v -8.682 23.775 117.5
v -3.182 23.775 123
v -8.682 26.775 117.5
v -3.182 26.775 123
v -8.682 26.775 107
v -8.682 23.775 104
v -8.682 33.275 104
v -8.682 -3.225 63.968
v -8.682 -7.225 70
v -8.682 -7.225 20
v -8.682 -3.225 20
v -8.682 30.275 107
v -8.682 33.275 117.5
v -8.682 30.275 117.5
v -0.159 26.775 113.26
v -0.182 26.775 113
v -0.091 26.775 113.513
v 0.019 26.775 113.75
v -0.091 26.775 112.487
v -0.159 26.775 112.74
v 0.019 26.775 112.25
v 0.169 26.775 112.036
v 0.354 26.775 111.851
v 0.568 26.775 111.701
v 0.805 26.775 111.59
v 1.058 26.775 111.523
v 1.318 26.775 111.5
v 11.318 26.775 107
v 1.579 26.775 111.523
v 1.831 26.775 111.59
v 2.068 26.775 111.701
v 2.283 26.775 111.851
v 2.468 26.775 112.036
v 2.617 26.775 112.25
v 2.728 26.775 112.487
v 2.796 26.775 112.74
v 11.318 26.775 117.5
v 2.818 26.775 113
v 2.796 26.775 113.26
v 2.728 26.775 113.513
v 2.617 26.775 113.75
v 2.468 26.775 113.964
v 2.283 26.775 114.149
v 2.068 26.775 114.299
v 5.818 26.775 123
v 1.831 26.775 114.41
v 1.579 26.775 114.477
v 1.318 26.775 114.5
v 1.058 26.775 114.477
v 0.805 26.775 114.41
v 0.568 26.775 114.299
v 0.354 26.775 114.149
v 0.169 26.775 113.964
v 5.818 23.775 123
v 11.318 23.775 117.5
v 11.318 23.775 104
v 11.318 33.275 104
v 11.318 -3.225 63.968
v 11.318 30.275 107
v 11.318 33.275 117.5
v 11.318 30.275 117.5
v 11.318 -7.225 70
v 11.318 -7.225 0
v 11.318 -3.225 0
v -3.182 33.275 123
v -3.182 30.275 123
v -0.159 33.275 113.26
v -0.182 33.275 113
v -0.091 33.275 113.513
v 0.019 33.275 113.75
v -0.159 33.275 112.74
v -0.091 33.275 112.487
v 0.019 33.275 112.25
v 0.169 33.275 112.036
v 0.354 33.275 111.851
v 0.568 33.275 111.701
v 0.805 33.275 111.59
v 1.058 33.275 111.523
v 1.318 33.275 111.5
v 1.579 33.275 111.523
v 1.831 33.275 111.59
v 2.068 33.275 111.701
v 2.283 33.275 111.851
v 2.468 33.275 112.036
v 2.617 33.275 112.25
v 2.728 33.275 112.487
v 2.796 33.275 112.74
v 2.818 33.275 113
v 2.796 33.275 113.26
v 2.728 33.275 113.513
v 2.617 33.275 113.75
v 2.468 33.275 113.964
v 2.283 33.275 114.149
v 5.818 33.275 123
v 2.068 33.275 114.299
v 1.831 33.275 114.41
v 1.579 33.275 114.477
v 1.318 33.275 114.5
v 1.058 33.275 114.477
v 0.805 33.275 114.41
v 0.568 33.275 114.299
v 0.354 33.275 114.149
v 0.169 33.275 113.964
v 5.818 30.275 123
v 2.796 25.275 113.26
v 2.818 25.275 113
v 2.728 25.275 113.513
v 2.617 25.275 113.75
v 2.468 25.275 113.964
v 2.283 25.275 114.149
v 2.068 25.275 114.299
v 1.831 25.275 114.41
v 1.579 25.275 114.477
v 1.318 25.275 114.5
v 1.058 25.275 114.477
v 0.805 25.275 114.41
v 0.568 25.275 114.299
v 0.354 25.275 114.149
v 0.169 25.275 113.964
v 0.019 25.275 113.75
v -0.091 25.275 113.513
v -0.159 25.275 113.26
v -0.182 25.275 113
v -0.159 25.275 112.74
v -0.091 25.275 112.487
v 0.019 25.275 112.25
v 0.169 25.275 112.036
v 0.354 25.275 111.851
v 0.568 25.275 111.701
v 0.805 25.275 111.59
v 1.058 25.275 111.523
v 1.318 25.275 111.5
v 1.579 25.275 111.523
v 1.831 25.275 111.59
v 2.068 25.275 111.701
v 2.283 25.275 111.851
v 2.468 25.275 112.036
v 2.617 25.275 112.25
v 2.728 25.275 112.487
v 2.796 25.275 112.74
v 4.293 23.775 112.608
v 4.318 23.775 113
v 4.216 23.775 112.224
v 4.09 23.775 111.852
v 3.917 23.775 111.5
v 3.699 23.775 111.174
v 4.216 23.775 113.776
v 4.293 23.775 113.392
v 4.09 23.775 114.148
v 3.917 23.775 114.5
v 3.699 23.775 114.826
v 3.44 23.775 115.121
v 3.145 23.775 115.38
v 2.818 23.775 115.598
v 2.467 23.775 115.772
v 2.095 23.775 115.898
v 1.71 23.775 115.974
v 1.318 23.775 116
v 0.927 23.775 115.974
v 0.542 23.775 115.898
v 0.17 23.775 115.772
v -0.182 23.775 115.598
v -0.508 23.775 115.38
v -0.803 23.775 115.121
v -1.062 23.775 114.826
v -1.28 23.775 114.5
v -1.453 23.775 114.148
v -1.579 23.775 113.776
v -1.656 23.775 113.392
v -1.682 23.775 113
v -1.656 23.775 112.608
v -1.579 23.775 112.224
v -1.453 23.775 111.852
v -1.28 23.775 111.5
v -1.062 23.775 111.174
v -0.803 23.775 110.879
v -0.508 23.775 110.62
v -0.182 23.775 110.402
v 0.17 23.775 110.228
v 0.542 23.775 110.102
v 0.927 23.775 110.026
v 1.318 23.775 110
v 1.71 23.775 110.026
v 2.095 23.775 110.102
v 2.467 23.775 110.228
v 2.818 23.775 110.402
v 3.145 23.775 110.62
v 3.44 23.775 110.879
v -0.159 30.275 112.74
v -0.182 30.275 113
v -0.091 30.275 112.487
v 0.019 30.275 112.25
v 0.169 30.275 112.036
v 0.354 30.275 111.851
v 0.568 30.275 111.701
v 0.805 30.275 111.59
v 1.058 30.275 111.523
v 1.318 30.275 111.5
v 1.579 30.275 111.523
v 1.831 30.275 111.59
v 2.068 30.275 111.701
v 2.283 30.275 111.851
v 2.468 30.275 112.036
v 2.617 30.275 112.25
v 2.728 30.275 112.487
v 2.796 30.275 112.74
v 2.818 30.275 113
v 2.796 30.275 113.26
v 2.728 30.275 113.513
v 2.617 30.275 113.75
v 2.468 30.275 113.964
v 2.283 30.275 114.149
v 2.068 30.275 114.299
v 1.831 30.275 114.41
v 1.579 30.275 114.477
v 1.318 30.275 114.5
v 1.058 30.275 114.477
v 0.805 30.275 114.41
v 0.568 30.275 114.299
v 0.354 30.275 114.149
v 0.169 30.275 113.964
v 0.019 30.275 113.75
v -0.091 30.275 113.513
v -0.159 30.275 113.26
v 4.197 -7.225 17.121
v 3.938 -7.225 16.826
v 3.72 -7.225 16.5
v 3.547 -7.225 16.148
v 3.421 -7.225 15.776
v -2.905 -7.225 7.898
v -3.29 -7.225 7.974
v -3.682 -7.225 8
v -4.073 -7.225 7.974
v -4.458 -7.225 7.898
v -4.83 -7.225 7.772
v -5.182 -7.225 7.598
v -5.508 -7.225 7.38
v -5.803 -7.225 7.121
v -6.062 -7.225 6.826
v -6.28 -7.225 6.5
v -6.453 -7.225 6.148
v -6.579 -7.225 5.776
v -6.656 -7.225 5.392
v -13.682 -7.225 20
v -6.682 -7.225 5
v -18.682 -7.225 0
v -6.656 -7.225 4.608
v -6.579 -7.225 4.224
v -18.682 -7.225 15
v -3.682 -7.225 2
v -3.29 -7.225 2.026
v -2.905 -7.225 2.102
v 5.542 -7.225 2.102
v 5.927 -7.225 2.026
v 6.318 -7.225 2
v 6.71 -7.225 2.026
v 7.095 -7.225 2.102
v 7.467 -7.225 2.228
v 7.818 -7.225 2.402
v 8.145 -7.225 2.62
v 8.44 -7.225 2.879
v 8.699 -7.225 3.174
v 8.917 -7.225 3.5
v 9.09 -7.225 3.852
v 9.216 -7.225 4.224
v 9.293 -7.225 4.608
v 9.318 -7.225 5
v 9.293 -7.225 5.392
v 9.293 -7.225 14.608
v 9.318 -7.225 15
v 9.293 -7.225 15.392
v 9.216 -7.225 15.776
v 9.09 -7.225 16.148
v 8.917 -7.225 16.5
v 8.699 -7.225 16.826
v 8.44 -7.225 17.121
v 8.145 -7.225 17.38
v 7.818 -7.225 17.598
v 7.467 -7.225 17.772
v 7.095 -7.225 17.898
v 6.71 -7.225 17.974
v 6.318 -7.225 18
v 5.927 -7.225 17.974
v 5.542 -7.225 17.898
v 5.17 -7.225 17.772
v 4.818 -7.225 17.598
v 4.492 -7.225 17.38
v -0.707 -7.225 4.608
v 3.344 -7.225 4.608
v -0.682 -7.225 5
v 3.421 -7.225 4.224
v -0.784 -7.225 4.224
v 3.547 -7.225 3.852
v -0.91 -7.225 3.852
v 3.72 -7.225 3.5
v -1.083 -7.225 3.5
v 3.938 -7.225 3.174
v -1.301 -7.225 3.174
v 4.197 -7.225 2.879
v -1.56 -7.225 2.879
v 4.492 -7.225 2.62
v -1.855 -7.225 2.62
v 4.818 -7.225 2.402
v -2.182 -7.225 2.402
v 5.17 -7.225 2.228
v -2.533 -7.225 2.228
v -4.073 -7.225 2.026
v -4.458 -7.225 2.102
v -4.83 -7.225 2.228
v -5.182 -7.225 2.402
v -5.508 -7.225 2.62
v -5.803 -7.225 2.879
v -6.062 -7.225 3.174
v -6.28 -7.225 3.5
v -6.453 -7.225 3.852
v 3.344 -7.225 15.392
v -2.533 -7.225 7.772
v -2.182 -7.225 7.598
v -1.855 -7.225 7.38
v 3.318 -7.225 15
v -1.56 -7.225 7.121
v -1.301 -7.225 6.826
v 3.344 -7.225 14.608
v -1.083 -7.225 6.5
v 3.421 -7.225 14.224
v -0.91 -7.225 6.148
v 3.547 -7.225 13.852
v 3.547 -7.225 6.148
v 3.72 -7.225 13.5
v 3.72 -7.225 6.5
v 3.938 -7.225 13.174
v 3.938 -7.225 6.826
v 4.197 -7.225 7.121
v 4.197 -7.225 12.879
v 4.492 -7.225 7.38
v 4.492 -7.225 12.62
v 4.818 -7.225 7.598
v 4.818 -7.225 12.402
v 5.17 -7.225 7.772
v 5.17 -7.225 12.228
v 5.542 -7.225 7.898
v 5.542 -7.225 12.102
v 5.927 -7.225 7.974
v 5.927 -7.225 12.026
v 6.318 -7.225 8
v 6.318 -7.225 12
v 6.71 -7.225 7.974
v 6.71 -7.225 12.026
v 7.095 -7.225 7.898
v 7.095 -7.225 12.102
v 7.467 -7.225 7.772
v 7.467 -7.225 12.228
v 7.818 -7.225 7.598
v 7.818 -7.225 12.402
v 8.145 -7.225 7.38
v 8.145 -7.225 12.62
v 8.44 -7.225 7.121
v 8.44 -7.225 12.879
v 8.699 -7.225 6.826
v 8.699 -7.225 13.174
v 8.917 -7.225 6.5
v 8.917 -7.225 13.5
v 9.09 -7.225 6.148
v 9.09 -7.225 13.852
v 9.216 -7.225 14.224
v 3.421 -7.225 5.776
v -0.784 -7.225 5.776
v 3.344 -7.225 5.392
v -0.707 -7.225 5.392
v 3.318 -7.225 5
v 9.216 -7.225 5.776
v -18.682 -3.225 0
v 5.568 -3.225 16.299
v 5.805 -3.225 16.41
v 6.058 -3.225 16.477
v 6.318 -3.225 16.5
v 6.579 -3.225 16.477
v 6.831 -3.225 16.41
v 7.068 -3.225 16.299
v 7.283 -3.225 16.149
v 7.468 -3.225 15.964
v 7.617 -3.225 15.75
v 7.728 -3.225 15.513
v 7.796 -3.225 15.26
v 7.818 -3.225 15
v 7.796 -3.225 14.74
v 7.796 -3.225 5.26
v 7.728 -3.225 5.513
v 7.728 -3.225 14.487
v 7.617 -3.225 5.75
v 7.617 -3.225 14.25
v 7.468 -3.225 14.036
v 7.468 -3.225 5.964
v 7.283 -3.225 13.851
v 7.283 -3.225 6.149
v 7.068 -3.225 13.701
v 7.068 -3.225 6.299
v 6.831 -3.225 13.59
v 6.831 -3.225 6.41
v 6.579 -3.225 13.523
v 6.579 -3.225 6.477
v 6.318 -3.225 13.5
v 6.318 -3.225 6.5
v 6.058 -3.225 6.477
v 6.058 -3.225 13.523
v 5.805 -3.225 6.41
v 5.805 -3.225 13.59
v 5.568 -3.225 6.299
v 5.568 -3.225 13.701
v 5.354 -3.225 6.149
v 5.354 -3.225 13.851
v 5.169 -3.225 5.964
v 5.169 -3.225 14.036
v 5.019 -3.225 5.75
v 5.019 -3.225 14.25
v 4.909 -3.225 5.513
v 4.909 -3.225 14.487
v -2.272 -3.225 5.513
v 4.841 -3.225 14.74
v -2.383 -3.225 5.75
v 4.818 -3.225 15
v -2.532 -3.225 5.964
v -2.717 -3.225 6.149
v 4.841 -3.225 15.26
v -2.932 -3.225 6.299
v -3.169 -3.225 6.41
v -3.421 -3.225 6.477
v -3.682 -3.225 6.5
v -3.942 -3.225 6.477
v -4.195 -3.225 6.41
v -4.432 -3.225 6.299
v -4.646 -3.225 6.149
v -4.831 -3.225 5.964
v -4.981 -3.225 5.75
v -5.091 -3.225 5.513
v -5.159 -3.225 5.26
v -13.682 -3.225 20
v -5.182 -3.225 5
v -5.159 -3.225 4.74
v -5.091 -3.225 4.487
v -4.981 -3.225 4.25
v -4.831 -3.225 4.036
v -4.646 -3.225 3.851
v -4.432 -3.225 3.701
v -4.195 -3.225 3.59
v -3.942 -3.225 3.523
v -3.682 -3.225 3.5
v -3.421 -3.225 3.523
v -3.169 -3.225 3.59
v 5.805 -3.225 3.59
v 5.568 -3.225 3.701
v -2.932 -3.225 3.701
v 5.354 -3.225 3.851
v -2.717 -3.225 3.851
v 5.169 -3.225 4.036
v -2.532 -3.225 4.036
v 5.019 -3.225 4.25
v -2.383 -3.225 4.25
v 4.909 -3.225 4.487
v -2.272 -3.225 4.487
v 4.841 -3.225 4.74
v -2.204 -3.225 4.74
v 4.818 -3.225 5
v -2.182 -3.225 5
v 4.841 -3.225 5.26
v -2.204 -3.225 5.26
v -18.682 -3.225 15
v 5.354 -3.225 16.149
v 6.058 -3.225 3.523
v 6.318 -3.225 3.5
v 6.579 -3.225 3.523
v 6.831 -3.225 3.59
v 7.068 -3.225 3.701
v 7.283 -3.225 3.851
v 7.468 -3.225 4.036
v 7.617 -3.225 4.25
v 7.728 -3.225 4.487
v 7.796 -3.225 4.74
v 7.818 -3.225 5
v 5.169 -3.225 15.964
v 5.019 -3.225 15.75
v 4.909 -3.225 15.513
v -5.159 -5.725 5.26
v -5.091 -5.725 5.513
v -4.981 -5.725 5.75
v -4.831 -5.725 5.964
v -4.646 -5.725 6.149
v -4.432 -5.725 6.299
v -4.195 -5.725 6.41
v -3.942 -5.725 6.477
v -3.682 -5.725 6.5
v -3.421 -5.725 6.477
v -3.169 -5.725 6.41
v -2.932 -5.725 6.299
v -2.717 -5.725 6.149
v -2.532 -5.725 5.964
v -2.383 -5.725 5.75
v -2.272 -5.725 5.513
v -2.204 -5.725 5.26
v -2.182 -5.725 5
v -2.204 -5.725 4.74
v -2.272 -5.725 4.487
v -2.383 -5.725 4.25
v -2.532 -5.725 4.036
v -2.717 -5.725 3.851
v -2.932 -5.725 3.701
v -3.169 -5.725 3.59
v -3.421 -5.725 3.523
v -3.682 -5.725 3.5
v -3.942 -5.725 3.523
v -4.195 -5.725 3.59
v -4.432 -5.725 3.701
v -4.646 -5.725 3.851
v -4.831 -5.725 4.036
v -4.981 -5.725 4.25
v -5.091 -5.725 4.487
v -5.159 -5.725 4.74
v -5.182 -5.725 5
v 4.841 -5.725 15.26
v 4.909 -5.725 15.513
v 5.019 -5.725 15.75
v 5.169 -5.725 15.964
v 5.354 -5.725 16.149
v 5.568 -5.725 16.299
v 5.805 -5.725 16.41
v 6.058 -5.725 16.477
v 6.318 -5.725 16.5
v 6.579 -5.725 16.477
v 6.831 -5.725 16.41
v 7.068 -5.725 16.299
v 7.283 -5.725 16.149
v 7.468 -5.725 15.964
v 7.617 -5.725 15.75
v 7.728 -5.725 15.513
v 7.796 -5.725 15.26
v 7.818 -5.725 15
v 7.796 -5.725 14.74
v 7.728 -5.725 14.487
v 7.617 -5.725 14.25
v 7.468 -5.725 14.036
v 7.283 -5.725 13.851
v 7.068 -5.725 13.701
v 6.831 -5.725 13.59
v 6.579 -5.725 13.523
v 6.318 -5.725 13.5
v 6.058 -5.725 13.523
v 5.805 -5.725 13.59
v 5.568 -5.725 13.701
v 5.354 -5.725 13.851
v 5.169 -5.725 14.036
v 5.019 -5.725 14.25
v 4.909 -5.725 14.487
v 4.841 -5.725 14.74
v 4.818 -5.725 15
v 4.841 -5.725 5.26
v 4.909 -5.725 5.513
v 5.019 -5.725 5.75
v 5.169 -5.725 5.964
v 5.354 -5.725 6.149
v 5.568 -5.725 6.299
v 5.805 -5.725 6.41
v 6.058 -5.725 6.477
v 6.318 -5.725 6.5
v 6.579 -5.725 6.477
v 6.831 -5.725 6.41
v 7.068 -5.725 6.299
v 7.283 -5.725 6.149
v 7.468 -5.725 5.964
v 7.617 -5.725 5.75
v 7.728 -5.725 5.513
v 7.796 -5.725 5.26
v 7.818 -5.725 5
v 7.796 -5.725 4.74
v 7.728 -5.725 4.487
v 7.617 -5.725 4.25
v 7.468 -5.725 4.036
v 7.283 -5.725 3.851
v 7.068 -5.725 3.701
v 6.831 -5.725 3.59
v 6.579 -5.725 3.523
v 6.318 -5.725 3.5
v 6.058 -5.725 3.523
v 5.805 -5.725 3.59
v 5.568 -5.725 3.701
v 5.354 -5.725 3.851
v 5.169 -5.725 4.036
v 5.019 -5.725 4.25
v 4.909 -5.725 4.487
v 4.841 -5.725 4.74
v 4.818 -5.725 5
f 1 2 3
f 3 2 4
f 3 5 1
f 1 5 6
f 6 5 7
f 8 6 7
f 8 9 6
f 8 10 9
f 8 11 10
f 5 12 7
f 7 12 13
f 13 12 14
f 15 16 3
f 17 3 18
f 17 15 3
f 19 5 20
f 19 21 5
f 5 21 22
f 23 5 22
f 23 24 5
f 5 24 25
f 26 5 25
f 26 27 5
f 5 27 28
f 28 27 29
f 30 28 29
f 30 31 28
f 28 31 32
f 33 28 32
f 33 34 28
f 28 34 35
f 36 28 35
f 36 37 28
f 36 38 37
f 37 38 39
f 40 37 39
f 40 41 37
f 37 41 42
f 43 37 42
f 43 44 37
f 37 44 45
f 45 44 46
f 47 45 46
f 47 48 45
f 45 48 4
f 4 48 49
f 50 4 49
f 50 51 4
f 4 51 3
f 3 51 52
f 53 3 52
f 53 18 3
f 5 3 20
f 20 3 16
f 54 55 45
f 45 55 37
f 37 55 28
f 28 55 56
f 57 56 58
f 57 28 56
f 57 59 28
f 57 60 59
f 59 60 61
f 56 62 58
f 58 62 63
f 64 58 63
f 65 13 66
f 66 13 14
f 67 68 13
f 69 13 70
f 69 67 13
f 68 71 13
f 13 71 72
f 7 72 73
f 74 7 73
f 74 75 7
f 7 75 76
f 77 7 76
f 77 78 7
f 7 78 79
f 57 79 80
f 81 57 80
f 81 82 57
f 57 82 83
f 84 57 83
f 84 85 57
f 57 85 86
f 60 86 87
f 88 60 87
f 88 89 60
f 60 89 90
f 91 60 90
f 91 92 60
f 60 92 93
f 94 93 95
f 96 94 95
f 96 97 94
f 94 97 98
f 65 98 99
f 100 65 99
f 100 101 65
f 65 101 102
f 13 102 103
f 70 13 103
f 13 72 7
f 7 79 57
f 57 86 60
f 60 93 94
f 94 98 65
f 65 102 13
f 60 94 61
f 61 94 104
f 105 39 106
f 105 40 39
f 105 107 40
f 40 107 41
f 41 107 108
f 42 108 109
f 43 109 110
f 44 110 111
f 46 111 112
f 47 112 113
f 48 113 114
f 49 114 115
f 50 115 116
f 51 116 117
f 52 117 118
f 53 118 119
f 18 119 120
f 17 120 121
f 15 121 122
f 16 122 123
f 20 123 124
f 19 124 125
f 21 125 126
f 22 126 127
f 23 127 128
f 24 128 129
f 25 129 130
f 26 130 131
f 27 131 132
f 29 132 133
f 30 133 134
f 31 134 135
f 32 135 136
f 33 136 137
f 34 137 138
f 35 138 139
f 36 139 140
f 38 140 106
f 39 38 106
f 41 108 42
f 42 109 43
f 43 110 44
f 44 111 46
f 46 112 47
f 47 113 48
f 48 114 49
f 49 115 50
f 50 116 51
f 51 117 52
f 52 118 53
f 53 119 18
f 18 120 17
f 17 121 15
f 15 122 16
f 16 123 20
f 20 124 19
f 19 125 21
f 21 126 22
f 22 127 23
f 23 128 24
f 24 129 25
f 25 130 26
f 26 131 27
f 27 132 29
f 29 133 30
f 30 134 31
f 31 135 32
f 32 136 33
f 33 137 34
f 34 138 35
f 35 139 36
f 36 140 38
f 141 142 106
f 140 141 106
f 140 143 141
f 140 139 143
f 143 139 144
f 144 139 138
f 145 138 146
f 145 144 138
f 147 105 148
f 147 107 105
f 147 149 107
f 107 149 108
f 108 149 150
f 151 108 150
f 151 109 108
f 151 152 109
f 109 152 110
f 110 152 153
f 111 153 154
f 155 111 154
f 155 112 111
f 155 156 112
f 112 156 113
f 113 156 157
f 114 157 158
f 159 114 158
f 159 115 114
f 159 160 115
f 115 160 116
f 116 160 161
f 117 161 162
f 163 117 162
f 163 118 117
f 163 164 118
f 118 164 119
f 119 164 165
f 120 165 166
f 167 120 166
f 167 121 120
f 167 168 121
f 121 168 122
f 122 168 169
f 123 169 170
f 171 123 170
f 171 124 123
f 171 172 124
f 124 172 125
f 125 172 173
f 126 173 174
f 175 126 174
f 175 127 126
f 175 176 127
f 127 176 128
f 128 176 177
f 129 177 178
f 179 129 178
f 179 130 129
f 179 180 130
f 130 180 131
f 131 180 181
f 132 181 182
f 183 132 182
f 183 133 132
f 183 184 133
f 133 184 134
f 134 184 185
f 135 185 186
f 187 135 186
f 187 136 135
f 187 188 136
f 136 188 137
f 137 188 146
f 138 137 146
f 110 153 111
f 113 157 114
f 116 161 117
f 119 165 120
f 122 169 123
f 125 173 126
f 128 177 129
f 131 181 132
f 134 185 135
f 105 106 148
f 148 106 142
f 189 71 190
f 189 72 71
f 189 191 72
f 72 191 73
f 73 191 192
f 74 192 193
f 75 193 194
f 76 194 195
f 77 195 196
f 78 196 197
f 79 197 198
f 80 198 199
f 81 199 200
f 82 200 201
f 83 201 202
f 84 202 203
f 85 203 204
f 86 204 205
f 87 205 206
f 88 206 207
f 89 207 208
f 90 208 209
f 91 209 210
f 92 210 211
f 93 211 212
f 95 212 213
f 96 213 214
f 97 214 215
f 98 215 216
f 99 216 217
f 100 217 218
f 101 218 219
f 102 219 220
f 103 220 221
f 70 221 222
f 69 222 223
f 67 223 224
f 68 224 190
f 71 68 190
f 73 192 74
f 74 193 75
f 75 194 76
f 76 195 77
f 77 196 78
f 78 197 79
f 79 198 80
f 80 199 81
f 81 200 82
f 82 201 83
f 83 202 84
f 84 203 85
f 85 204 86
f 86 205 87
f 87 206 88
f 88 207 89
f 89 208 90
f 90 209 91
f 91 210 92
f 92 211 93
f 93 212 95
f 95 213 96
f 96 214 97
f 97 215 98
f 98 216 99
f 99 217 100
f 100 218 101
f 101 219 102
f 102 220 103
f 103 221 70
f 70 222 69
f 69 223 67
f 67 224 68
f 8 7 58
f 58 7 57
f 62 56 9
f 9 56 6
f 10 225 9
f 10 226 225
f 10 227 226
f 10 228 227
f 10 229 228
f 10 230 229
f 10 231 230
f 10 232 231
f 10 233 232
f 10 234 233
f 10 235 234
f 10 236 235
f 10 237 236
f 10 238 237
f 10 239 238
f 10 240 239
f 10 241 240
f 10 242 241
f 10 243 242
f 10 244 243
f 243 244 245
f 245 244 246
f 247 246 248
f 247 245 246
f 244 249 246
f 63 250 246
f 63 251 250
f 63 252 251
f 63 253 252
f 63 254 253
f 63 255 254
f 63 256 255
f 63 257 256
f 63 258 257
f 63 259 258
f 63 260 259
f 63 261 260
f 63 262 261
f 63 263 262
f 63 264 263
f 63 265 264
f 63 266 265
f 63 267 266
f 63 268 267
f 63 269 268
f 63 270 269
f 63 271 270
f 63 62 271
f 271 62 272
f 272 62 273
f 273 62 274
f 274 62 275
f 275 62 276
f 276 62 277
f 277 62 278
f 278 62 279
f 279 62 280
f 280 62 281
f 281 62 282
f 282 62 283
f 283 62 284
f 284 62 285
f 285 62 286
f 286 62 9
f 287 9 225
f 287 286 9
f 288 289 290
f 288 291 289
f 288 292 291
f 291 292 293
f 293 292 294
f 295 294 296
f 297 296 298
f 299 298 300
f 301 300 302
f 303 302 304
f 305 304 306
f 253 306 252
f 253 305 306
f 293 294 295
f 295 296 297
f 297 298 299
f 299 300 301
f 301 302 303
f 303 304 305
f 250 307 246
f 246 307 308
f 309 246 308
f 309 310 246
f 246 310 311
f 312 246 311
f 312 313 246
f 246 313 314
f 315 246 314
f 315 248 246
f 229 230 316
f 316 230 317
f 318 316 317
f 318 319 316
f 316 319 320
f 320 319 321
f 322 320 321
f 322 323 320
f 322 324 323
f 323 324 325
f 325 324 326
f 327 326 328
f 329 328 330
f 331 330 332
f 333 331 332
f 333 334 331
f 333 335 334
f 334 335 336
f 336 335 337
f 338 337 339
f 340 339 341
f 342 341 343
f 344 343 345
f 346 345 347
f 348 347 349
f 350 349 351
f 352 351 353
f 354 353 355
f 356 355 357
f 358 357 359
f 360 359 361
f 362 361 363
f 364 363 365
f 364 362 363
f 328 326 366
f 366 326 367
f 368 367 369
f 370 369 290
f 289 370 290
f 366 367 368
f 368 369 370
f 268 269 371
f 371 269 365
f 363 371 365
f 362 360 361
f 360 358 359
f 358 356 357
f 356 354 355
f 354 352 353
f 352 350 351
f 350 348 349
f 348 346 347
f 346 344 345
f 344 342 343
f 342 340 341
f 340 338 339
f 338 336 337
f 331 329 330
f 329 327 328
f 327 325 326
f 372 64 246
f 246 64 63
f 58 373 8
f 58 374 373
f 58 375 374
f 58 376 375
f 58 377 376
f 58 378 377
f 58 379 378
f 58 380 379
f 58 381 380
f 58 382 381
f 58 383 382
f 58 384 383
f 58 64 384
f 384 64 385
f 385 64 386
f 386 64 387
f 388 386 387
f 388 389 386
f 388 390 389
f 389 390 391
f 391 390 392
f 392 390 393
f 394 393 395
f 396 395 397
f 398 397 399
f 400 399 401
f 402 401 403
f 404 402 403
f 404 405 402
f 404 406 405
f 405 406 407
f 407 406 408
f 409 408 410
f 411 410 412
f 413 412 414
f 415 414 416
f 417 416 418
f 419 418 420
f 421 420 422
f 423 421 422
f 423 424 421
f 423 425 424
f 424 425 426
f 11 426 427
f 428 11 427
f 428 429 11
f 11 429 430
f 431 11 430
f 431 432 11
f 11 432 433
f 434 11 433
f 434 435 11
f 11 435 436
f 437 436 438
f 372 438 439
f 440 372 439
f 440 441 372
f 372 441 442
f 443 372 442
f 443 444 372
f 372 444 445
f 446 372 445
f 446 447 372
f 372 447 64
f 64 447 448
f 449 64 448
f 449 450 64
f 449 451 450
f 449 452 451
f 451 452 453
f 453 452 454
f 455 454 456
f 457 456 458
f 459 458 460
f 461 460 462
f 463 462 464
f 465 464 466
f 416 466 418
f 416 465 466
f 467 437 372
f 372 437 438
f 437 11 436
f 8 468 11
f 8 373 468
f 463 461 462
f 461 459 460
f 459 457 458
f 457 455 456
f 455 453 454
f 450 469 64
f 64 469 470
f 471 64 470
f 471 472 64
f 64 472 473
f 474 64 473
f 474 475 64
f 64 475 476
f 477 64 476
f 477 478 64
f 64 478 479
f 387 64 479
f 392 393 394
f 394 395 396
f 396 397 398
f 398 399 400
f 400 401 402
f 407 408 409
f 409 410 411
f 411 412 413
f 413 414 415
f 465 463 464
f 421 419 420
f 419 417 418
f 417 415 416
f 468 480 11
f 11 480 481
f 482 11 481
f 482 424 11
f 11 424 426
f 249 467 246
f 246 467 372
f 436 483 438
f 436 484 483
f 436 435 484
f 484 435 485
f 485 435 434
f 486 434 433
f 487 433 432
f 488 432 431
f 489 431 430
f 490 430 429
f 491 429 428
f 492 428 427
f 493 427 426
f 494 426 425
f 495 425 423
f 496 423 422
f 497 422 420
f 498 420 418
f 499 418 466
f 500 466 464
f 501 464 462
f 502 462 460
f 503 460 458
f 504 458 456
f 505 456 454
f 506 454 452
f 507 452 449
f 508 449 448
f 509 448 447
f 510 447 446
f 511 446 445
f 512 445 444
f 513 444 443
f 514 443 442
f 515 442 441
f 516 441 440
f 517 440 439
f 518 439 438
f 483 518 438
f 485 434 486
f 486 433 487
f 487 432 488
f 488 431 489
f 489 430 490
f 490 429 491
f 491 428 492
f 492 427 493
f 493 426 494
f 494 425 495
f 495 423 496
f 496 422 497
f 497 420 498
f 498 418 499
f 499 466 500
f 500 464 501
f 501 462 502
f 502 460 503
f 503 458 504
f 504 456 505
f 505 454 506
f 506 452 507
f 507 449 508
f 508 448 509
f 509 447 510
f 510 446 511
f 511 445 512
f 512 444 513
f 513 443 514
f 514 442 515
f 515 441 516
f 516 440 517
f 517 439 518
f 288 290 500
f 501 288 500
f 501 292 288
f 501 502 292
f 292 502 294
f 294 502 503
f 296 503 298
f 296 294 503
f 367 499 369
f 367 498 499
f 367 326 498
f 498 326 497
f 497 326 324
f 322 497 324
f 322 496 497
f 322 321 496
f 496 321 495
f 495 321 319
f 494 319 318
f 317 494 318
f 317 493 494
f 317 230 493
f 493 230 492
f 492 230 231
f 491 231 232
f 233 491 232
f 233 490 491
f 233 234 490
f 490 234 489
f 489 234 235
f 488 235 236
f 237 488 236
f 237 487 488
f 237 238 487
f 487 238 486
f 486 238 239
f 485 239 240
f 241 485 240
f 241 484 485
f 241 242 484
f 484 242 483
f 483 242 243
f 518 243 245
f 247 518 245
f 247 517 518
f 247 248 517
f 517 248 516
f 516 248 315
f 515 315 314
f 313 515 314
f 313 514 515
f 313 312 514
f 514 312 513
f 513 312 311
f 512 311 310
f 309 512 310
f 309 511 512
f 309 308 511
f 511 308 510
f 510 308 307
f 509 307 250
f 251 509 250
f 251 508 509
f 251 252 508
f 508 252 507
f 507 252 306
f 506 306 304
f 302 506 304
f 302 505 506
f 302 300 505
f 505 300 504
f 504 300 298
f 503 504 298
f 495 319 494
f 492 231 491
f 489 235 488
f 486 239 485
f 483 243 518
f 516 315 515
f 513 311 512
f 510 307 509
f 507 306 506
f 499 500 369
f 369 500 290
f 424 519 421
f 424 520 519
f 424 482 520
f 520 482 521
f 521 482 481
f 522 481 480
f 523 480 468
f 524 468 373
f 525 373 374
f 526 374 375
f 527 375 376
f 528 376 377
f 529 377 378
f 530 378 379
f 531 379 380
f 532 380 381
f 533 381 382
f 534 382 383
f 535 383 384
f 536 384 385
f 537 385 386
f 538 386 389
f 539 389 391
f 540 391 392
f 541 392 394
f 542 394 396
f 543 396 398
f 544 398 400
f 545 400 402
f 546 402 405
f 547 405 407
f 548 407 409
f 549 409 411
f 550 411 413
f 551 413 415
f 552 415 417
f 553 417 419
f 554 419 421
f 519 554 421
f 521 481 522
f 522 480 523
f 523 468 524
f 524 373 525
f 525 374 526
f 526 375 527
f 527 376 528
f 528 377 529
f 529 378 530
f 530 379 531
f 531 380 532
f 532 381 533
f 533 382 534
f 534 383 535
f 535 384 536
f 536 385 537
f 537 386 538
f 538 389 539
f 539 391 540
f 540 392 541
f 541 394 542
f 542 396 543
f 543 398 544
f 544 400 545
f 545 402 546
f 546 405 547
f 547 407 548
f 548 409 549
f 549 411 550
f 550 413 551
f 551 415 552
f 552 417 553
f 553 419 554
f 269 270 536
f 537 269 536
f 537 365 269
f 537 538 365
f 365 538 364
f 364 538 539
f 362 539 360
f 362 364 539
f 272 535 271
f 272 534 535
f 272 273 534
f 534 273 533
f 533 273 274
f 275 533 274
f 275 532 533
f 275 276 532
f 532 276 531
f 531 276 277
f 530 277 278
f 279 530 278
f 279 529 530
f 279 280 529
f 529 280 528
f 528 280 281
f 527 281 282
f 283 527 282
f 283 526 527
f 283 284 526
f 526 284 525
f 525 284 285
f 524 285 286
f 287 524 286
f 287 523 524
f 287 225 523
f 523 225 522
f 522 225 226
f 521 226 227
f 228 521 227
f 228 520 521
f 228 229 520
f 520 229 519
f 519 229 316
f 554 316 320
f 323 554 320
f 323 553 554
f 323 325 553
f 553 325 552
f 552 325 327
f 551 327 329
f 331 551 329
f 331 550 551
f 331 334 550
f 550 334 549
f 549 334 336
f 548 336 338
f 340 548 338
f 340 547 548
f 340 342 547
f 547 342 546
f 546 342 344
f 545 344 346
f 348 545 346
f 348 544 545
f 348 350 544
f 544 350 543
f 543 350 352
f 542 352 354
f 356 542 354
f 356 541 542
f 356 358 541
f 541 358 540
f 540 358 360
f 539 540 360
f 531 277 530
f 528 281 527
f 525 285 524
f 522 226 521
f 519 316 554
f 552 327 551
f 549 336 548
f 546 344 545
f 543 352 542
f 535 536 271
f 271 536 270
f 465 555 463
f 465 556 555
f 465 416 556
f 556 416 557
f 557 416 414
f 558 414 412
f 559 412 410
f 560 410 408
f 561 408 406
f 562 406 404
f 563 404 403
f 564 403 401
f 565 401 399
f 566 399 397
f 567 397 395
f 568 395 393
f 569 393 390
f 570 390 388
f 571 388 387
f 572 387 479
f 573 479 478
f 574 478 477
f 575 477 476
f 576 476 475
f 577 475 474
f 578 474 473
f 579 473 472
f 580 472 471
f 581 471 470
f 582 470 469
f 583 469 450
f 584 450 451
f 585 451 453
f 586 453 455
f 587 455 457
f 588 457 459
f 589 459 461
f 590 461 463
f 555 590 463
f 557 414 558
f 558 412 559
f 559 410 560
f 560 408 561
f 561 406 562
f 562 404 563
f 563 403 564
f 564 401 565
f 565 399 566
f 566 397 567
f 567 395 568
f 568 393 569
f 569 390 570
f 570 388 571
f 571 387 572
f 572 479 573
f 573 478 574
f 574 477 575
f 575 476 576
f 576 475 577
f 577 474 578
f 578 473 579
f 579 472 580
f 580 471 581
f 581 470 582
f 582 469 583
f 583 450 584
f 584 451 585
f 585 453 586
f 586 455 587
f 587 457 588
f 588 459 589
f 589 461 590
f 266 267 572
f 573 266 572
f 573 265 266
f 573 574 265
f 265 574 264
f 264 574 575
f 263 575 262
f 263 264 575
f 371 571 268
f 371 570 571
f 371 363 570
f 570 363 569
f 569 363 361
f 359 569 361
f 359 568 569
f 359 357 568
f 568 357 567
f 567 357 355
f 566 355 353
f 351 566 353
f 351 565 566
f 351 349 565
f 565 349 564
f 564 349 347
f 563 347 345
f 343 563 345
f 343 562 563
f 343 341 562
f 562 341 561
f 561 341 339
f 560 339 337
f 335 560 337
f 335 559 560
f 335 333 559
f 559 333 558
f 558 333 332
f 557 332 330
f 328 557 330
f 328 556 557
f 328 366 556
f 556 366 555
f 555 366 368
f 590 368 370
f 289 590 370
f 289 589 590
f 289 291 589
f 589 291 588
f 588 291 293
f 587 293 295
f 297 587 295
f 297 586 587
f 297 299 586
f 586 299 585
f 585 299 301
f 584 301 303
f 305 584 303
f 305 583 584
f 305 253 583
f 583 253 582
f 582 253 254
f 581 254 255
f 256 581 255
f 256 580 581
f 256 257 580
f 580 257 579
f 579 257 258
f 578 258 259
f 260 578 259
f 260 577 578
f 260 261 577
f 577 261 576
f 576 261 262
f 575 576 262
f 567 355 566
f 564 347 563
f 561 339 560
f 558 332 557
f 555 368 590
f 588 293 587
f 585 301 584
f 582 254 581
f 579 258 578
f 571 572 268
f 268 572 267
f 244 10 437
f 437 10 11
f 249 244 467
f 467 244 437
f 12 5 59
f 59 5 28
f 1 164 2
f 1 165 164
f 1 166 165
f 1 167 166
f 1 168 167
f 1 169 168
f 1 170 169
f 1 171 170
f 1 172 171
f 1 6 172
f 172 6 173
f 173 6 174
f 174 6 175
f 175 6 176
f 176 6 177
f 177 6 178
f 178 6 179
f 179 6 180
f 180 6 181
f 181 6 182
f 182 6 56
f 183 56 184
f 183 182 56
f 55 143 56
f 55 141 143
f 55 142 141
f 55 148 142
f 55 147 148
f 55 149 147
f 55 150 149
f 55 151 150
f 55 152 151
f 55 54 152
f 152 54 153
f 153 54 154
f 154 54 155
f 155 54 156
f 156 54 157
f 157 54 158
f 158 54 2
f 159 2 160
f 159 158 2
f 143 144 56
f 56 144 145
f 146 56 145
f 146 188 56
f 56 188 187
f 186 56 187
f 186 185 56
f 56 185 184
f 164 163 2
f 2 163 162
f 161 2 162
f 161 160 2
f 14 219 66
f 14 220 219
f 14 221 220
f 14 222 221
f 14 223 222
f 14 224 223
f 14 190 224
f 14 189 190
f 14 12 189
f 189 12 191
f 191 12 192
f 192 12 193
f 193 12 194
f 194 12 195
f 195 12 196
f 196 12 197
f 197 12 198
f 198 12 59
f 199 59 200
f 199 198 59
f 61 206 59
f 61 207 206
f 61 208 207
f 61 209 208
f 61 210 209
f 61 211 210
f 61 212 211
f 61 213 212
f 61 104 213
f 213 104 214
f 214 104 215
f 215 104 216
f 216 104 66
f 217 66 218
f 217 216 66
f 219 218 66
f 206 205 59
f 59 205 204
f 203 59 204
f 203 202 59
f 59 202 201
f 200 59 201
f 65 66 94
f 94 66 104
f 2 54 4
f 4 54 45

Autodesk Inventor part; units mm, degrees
ref_plane "YZ Plane" through (0, 0, 0) normal (1, 0, 0) x (0, 1, 0)
ref_plane "XZ Plane" through (0, 0, 0) normal (0, 1, 0) x (-1, 0, 0)
ref_plane "XY Plane" through (0, 0, 0) normal (0, 0, 1) x (1, 0, 0)
sketch "Sketch1" plane through (0, 0, 0) normal (0, 0, 1) x (1, 0, 0)
  line L0 (-18.6815, -3.2252) -> (11.3185, -3.2252)
  line L1 (11.3185, -3.2252) -> (11.3185, -7.2252)
  line L2 (11.3185, -7.2252) -> (-18.6815, -7.2252)
  line L3 (-18.6815, -7.2252) -> (-18.6815, -3.2252)
  point P0 (0, 0)
  dimension "d0" = 30
  dimension "d1" = 4
extrude "Extrusion1" add sketch "Sketch1" along normal blind 20
sketch "Sketch2" plane through (-18.6815, -7.2252, 0) normal (0, -1, 0) x (1, 0, 0)
  line L0 (30, 20) -> (10, 20)
  line L1 (10, 20) -> (10, 123)
  line L2 (10, 123) -> (30, 123)
  line L3 (30, 123) -> (30, 20)
  point P0 (18.6815, 0)
  dimension "d4" = 103
  dimension "d5" = 20
extrude "Extrusion2" add sketch "Sketch2" against normal blind 10
sketch "Sketch3" plane through (-18.6815, -7.2252, 0) normal (0, -1, 0) x (1, 0, 0)
  line L0 (30, 20) -> (10, 20) projected
  line L1 (30, 0) -> (30, 20) projected
  line L2 (30, 0) -> (0, 0) projected
  point P0 (18.6815, 0)
  point P1 (25, 15)
  point P2 (25, 5)
  point P3 (15, 5)
  dimension "d8" = 5
  dimension "d9" = 5
  dimension "d10" = 5
  dimension "d11" = 5
  dimension "d12" = 5
  dimension "d13" = 10
hole "Hole1" at (6.3185, -7.2252, 15) at (6.3185, -7.2252, 5) at (-3.6815, -7.2252, 5) direction (0, 1, 0) diameter 3 depth 8 tip angle 118 countersink diameter 6 countersink angle 90
chamfer "Chamfer1" distance 5 angle 45 1 edges at (-18.6815, -5.2252, 20)
sketch "Sketch4" plane through (-8.6815, -7.2252, 20) normal (-1, 0, 0) x (0, 0, 1)
  line L0 (103, 10) -> (0, 10)
  line L1 (0, 10) -> (0, 4)
  line L2 (0, 4) -> (103, 4)
  line L3 (103, 4) -> (103, 10)
  point P0 (-20, 7.2252)
extrude "Extrusion3" cut sketch "Sketch4" against normal blind 20
sketch "Sketch5" plane through (-8.6815, -7.2252, 20) normal (-1, 0, 0) x (0, 0, 1)
  line L0 (103, 4) -> (99, 4)
  line L1 (99, 4) -> (99, 34)
  line L2 (99, 34) -> (103, 34)
  line L3 (103, 34) -> (103, 4)
  point P0 (-20, 7.2252)
  dimension "d26" = 4
  dimension "d27" = 30
extrude "Extrusion4" add sketch "Sketch5" against normal blind 20
sketch "Sketch6" plane through (-8.6815, -7.2252, 20) normal (-1, 0, 0) x (0, 0, 1)
  line L0 (103, 34) -> (88, 34)
  line L1 (88, 34) -> (88, 31)
  line L2 (88, 31) -> (103, 31)
  line L3 (103, 31) -> (103, 34)
  line L4 (103, 37.5) -> (88, 37.5)
  line L5 (88, 37.5) -> (88, 40.5)
  line L6 (88, 40.5) -> (103, 40.5)
  line L7 (103, 40.5) -> (103, 37.5)
  line L8 (103, 0) -> (103, 34) projected
  line L9 (88, 40.5) -> (84, 40.5)
  line L10 (84, 40.5) -> (84, 31)
  line L11 (84, 31) -> (88, 31)
  line L12 (88, 31) -> (88, 40.5)
  point P0 (-20, 7.2252)
  dimension "d30" = 15
  dimension "d31" = 3
  dimension "d32" = 3.5
  dimension "d33" = 3
  dimension "d34" = 4
extrude "Extrusion5" add sketch "Sketch6" against normal blind 20
sketch "Sketch7" plane through (-8.6815, -7.2252, 20) normal (-1, 0, 0) x (0, 0, 1)
  line L0 (88, 37.5) -> (87, 37.5)
  line L1 (87, 37.5) -> (87, 34)
  line L2 (87, 34) -> (88, 34)
  line L3 (88, 34) -> (88, 37.5)
  line L4 (103, 34) -> (88, 34) projected
  point P0 (-20, 7.2252)
  dimension "d37" = 1
extrude "Extrusion6" cut sketch "Sketch7" against normal blind 20
sketch "Sketch8" plane through (-8.6815, -7.2252, 20) normal (-1, 0, 0) x (0, 0, 1)
  line L0 (103, 34) -> (103, 0) projected
  line L1 (-20, 0) -> (103, 0) projected
  line L2 (103, 31) -> (50, 31)
  line L3 (50, 31) -> (50, 0)
  line L4 (50, 0) -> (103, 0)
  line L5 (103, 0) -> (103, 31)
  line L6 (84, 31) -> (99, 31) projected
  line L7 (0, 0) -> (0, 4) projected
  point P0 (-20, 7.2252)
  dimension "d40" = 50
extrude "Extrusion7" cut sketch "Sketch8" against normal blind 20
sketch "Sketch9" plane through (11.3185, -7.2252, 0) normal (1, 0, 0) x (0, 0, -1)
  line L0 (-104, 40.5) -> (-104, 31)
  line L1 (-104, 31) -> (-104, 40.5) projected
  line L2 (-104, 31) -> (-70, 0)
  line L3 (-104, 40.5) -> (-70, 9.5)
  line L4 (-70, 9.5) -> (-70, 0)
  line L5 (-70, 4) -> (-70, 0) projected
  line L6 (-70, 9.5) -> (-59.5806, 0)
  line L7 (-59.5806, 0) -> (-70, 0)
  line L8 (0, 0) -> (-70, 0) projected
  point P0 (0, 7.2252)
extrude "Extrusion8" add sketch "Sketch9" against normal blind 20
sketch "Sketch10" plane through (-8.6815, 23.7748, 123) normal (0, -1, 0) x (1, 0, 0)
  line L0 (0, -16) -> (20, -16) projected
  point P0 (8.6815, -123)
  point P1 (10, -10)
  dimension "d45" = 6
hole "Hole2" at (1.3185, 23.7748, 113) direction (0, 1, 0) diameter 3 depth 15 tip angle 118 countersink diameter 6 countersink angle 90
chamfer "Chamfer2" distance 5.5 angle 45 4 edges at (11.3185, 31.7748, 123) (-8.6815, 31.7748, 123) (11.3185, 25.2748, 123) (-8.6815, 25.2748, 123)
properties part number "col support base"
